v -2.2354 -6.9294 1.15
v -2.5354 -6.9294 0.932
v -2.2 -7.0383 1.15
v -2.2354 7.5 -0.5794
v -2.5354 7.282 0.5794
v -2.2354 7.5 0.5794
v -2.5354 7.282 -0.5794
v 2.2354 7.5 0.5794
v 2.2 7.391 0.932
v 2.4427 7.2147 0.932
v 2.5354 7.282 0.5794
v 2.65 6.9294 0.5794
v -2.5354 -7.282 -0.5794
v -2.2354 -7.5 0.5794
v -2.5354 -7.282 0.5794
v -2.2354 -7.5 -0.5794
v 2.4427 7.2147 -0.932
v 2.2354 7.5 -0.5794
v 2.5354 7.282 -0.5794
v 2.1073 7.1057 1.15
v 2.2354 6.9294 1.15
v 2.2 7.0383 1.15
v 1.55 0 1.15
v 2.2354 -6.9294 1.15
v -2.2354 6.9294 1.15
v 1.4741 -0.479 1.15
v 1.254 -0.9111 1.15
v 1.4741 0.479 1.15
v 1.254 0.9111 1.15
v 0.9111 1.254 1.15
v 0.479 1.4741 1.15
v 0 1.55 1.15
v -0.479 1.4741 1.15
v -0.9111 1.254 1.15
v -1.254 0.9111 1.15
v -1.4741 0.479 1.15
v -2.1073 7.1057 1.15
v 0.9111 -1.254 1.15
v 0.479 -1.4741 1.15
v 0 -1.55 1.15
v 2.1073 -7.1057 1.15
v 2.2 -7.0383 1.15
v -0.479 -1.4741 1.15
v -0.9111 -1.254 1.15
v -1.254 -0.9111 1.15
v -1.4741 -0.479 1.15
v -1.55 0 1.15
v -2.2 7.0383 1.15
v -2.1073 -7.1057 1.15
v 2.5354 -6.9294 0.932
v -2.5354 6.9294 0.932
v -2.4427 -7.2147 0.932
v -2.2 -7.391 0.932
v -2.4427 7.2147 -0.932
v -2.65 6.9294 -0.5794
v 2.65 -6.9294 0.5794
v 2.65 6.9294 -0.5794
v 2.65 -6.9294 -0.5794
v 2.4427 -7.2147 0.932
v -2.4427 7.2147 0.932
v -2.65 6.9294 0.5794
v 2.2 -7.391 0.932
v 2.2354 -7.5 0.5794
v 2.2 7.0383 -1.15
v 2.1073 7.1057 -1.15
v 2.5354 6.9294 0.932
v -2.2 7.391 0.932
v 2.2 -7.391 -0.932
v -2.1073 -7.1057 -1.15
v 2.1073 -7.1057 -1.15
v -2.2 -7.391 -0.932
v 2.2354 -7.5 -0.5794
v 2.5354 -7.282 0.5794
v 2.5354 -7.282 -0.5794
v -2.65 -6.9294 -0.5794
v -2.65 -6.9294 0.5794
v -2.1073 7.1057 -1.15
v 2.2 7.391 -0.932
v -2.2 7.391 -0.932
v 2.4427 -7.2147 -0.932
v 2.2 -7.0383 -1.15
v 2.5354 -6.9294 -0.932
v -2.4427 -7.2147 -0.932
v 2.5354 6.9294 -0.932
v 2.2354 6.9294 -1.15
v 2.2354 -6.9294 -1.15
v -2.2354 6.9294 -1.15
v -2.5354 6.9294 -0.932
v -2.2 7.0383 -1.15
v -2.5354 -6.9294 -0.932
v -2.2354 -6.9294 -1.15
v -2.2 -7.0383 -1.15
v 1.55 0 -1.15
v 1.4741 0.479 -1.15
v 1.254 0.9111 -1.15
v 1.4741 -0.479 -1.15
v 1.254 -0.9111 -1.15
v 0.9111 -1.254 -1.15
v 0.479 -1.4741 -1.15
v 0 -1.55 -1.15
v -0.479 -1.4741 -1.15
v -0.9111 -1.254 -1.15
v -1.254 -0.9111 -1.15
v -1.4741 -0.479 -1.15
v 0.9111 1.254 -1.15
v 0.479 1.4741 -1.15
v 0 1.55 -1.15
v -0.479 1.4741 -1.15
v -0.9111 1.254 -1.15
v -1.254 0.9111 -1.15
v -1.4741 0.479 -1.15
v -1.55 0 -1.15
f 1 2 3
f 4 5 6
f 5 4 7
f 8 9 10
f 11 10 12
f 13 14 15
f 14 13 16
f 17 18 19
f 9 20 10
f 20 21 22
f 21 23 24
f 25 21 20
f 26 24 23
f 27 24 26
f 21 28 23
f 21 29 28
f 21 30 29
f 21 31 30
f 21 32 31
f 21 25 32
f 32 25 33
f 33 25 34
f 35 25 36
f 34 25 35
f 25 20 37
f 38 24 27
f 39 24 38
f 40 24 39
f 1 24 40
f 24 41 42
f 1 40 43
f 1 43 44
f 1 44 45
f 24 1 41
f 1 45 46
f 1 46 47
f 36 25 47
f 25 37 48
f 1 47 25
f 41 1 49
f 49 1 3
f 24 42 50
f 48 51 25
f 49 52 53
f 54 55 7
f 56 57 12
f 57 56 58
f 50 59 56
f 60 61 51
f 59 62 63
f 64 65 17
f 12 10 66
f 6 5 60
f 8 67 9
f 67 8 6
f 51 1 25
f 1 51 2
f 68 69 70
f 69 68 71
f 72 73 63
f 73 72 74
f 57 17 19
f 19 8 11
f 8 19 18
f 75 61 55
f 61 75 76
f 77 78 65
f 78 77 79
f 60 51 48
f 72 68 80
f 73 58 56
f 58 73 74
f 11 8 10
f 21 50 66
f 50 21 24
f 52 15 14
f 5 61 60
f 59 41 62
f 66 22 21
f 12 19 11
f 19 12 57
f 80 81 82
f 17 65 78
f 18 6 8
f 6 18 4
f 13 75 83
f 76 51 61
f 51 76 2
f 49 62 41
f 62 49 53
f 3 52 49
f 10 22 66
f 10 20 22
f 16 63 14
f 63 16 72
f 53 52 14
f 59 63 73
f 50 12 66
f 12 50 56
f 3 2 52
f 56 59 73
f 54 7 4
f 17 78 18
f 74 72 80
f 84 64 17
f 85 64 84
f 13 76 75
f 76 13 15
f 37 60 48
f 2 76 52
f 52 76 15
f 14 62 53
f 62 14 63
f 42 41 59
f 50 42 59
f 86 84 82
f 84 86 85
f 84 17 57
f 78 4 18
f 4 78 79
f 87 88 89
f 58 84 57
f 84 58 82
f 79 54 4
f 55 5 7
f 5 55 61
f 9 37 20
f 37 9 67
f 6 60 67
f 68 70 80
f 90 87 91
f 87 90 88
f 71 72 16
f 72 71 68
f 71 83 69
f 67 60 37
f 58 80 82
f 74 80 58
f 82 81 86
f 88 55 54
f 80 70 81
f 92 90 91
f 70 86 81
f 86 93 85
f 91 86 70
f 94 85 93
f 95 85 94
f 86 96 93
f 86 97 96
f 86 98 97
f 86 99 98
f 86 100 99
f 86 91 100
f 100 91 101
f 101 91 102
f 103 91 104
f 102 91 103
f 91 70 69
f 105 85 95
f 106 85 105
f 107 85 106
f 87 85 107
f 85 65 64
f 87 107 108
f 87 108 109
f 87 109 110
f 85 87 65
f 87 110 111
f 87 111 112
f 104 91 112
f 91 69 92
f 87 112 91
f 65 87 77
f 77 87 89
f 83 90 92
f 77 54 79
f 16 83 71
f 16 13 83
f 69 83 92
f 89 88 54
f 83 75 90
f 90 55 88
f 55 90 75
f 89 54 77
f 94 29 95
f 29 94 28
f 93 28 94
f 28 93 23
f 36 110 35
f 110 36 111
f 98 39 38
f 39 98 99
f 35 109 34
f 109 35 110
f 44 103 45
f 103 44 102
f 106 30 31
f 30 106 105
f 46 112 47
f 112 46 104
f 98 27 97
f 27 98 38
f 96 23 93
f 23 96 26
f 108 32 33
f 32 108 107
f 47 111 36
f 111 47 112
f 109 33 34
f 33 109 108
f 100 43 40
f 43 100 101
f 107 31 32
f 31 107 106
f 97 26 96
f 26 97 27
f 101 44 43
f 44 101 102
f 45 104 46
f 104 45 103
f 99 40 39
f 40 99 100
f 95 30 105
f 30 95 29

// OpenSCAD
use <fillets_and_rounds.scad>

difference(){
    add_rounds(fn=10,R=0.6)cube([5.3,15,2.3],center=true);
    cylinder(h=5,d=3.1,$fn=20,center=true);
    
}//end difference
